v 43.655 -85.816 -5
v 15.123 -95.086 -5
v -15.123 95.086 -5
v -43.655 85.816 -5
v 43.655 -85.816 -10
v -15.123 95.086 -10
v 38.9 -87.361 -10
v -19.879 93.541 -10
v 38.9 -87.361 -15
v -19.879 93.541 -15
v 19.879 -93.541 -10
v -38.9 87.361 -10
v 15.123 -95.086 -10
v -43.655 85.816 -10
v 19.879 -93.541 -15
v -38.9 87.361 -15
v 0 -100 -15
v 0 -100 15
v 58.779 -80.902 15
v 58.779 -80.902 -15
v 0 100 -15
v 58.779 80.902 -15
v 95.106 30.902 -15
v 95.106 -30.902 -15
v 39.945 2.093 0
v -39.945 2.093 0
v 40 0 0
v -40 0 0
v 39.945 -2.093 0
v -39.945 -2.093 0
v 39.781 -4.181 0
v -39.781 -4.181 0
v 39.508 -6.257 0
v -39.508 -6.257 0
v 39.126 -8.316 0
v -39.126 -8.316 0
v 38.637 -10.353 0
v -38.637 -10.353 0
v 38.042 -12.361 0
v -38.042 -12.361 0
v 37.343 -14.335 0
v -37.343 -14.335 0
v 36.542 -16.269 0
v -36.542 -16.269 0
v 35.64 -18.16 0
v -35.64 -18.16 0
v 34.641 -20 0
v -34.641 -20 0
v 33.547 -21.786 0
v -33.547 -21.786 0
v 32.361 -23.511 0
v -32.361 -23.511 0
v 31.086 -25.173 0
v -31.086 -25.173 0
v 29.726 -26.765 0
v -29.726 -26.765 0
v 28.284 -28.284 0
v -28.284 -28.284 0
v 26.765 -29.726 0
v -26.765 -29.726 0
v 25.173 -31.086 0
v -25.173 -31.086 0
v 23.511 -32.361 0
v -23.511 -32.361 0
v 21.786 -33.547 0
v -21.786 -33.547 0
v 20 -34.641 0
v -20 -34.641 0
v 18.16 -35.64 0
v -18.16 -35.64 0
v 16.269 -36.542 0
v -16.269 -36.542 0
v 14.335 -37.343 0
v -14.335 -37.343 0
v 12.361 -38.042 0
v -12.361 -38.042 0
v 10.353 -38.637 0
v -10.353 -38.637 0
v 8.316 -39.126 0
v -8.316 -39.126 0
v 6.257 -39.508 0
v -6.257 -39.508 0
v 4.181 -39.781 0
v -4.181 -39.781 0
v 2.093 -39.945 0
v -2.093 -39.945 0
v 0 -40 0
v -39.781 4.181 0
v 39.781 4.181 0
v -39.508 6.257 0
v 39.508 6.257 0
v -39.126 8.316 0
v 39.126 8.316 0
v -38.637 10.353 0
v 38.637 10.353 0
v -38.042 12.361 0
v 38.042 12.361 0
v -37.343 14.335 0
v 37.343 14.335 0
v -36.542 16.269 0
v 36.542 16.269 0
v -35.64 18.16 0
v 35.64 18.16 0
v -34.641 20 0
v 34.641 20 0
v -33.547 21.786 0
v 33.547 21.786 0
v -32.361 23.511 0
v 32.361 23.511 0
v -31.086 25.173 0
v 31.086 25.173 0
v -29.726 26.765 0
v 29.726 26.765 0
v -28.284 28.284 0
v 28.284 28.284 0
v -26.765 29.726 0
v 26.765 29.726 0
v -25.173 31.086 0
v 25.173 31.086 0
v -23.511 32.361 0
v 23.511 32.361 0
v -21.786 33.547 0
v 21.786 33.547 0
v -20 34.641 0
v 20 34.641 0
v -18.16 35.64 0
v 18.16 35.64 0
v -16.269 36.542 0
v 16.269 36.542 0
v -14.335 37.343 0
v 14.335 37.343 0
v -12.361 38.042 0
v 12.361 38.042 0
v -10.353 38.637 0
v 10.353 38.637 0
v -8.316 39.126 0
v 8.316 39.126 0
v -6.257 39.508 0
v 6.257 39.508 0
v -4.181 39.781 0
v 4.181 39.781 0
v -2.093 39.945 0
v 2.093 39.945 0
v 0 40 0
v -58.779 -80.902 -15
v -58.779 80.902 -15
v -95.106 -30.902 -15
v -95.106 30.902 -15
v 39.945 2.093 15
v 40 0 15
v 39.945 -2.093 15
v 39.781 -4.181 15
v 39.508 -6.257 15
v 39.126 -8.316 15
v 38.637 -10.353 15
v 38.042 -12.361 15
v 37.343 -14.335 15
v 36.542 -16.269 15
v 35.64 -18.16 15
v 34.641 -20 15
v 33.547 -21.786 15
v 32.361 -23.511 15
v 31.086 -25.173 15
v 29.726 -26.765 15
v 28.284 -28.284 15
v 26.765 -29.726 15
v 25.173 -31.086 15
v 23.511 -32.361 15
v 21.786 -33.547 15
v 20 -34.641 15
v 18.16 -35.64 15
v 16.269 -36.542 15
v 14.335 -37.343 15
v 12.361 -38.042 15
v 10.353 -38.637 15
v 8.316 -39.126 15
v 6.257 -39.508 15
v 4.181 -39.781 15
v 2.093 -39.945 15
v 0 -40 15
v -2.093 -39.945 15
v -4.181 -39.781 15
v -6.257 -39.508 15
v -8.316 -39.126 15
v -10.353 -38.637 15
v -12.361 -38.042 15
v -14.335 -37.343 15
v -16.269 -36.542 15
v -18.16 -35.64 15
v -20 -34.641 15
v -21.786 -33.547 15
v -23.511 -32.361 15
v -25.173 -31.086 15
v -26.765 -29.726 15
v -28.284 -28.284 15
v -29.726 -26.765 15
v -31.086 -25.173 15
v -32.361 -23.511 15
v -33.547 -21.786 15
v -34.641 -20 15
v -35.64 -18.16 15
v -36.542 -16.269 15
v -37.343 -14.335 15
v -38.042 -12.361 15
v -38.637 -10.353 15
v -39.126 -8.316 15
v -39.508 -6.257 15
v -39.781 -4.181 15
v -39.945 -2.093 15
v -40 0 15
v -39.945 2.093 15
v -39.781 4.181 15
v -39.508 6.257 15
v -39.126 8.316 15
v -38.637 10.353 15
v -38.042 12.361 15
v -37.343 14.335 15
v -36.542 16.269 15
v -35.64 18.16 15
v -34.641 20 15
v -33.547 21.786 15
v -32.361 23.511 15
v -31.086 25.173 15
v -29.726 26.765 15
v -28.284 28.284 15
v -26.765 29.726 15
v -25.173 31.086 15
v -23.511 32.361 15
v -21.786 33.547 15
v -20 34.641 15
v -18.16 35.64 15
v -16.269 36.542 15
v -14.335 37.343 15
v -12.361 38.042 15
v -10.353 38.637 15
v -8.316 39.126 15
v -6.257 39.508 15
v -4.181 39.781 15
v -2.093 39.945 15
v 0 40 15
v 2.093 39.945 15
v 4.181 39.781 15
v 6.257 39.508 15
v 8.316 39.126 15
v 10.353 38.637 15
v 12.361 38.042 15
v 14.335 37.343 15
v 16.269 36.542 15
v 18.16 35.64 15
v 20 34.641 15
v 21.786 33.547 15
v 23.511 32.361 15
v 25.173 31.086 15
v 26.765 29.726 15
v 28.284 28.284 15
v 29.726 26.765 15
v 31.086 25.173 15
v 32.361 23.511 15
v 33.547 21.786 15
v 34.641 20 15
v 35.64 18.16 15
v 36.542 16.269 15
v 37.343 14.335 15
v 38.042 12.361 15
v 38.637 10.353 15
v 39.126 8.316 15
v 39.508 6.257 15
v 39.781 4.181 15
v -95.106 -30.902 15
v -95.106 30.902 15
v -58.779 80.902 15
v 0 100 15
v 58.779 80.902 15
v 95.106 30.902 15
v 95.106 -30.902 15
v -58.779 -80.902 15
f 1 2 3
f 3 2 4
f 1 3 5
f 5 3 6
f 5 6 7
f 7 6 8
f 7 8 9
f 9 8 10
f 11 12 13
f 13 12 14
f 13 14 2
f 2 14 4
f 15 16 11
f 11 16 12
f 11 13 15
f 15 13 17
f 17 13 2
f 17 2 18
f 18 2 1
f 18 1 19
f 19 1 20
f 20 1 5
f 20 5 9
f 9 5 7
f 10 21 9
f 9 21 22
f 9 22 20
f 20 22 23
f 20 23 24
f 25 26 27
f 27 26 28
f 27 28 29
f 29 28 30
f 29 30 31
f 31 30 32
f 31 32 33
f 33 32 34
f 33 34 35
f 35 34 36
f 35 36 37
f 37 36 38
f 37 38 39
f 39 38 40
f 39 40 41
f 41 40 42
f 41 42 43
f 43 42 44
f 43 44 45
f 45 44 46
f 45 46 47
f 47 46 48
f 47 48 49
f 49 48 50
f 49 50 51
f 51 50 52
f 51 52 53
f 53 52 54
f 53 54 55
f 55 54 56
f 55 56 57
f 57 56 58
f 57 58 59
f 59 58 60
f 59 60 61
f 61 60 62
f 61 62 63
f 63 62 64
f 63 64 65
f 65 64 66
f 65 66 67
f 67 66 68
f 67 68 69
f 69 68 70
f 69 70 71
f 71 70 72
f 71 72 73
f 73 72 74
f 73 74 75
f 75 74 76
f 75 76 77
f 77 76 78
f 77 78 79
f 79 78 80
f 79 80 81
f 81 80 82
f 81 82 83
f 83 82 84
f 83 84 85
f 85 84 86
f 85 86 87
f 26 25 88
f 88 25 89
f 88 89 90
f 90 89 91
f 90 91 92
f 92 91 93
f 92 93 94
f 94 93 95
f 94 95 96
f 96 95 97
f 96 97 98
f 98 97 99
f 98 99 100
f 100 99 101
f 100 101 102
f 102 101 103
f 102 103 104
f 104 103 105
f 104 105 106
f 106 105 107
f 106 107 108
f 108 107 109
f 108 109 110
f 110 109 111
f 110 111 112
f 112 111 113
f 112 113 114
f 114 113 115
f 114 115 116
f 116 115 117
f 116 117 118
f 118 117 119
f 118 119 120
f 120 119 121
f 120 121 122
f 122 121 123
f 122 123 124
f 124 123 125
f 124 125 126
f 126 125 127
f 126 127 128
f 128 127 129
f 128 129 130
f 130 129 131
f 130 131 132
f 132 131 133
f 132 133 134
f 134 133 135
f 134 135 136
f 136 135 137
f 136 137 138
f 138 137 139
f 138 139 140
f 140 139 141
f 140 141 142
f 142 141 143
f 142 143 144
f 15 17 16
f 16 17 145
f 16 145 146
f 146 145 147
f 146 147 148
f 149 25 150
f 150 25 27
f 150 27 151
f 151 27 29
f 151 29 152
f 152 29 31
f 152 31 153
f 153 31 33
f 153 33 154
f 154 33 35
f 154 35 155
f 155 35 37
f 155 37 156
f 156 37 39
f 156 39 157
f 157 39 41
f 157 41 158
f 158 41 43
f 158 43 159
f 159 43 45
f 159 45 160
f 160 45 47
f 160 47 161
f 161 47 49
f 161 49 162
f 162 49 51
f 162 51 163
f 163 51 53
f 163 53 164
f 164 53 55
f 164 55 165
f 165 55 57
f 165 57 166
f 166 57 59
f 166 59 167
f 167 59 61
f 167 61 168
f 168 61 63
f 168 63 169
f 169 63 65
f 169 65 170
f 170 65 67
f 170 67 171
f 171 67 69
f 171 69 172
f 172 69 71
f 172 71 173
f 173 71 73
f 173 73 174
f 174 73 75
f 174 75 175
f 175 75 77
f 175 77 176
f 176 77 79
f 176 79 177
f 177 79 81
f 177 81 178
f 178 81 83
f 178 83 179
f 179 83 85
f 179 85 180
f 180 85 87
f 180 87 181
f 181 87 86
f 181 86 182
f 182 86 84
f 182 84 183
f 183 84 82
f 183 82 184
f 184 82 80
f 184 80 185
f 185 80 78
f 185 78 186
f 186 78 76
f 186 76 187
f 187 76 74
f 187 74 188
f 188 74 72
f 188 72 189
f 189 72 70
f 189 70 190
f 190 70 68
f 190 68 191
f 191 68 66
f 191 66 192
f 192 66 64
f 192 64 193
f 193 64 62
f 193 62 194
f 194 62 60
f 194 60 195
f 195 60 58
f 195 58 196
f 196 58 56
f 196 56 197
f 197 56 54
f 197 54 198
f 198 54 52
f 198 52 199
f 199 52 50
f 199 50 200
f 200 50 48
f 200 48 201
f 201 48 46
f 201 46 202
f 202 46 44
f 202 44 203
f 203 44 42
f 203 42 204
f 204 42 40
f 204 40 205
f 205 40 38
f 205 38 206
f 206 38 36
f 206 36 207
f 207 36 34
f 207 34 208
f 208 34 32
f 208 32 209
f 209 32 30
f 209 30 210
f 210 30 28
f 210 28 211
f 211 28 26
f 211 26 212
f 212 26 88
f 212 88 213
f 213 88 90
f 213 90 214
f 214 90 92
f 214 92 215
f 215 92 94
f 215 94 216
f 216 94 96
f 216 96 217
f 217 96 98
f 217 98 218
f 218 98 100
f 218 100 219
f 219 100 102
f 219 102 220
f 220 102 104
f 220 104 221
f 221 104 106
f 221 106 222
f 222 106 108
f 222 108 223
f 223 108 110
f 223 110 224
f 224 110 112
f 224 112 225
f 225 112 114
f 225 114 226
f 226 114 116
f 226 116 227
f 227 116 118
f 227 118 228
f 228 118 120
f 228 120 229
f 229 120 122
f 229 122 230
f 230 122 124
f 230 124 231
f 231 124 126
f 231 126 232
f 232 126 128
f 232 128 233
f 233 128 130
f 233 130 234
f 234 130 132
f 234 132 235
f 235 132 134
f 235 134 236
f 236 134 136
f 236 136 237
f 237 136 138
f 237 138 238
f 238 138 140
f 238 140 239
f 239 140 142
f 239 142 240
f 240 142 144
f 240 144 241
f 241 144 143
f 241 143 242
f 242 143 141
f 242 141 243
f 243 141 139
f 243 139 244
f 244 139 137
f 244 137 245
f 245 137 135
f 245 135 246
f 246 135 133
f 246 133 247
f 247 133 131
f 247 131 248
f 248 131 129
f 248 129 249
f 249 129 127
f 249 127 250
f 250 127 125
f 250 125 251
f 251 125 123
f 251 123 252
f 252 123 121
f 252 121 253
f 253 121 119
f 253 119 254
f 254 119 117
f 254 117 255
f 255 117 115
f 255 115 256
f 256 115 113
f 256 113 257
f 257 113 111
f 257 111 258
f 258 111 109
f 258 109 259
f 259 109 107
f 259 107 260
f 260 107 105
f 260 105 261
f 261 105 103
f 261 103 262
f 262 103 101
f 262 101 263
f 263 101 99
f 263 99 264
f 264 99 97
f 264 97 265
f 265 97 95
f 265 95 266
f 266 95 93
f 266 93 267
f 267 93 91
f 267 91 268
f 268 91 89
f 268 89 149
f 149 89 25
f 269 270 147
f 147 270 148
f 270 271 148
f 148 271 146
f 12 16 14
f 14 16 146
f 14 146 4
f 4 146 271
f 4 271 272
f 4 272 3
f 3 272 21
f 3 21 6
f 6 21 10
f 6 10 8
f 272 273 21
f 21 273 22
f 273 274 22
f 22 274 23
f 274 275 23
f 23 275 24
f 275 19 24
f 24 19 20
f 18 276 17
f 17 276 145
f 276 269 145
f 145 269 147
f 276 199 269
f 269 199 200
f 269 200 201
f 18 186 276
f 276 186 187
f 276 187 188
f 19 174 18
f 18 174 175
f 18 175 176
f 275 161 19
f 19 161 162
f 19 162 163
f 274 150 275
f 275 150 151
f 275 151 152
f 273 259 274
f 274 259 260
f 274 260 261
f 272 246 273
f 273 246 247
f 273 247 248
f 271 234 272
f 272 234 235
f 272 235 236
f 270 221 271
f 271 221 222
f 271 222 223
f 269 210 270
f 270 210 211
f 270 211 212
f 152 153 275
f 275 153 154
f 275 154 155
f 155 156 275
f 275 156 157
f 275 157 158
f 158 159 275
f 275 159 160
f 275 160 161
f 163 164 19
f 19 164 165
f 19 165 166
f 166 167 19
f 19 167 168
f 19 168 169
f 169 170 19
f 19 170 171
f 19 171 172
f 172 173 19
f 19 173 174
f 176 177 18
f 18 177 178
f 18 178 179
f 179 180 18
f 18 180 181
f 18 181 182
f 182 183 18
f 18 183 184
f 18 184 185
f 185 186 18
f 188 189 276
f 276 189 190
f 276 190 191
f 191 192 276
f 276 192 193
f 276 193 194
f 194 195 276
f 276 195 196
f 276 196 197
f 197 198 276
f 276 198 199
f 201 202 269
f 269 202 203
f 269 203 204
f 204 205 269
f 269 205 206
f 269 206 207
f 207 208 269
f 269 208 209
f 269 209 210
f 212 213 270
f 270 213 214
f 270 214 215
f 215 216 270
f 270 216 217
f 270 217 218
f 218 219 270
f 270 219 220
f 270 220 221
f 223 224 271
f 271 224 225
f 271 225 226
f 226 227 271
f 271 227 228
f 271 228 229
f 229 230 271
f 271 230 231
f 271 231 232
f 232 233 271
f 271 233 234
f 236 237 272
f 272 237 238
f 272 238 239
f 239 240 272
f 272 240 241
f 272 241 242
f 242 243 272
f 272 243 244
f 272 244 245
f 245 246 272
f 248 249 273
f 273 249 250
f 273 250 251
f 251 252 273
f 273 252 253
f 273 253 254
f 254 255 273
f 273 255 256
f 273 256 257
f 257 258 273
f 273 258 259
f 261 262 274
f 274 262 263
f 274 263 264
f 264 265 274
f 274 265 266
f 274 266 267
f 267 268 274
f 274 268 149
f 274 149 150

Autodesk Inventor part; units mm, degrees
ref_plane "YZ Plane" through (0, 0, 0) normal (1, 0, 0) x (0, 1, 0)
ref_plane "XZ Plane" through (0, 0, 0) normal (0, 1, 0) x (-1, 0, 0)
ref_plane "XY Plane" through (0, 0, 0) normal (0, 0, 1) x (1, 0, 0)
sketch "Skizze1" plane through (0, 0, 0) normal (0, 0, 1) x (1, 0, 0)
  circle A0 centre (0, 0) radius 40
  line L0 (0, 100) -> (58.7785, 80.9017)
  line L1 (58.7785, 80.9017) -> (95.1057, 30.9017)
  line L2 (95.1057, 30.9017) -> (95.1057, -30.9017)
  line L3 (95.1057, -30.9017) -> (58.7785, -80.9017)
  line L4 (58.7785, -80.9017) -> (0, -100)
  line L5 (0, -100) -> (-58.7785, -80.9017)
  line L6 (-58.7785, -80.9017) -> (-95.1057, -30.9017)
  line L7 (-95.1057, -30.9017) -> (-95.1057, 30.9017)
  line L8 (-95.1057, 30.9017) -> (-58.7785, 80.9017)
  line L9 (-58.7785, 80.9017) -> (0, 100)
  dimension "d0" = 80
  dimension "d1" = 100
extrude "Extrusion1" add sketch "Skizze1" along normal blind 15
sketch "Skizze3" plane through (0, 0, 0) normal (0, 0, -1) x (-1, 0, 0)
  line L0 (-95.1057, -30.9017) -> (-95.1057, 30.9017) projected
  line L1 (-58.7785, -80.9017) -> (-95.1057, -30.9017) projected
  line L2 (0, -100) -> (-58.7785, -80.9017) projected
  line L3 (58.7785, -80.9017) -> (0, -100) projected
  line L4 (95.1057, -30.9017) -> (58.7785, -80.9017) projected
  line L5 (95.1057, 30.9017) -> (95.1057, -30.9017) projected
  line L6 (58.7785, 80.9017) -> (95.1057, 30.9017) projected
  line L7 (0, 100) -> (58.7785, 80.9017) projected
  line L8 (-58.7785, 80.9017) -> (0, 100) projected
  line L9 (-95.1057, 30.9017) -> (-58.7785, 80.9017) projected
  circle A0 centre (0, 0) radius 40 projected
extrude "Extrusion2" add sketch "Skizze3" along normal blind 15 contours L0 L9 L8 L7 L6 L5 L4 L3 L2 L1 | A0
sketch "Skizze4" plane through (-58.7785, 80.9017, 15) normal (-0.309, 0.9511, 0) x (0.9511, 0.309, 0)
  line L0 (61.8034, 30) -> (0, 30) projected
  line L1 (40.9017, 30) -> (40.9017, 25)
  line L2 (40.9017, 25) -> (45.9017, 25)
  line L3 (45.9017, 25) -> (45.9017, 20)
  line L4 (45.9017, 20) -> (15.9017, 20)
  line L5 (15.9017, 20) -> (15.9017, 25)
  line L6 (15.9017, 25) -> (20.9017, 25)
  line L7 (20.9017, 25) -> (20.9017, 30)
  point P0 (30.9017, 15)
  dimension "d6" = 20
  dimension "d7" = 10
  dimension "d8" = 30
  dimension "d9" = 15
  dimension "d10" = 5
  dimension "d11" = 5
extrude "Extrusion3" cut sketch "Skizze4" against normal through all
equation "\"d7\" = 0.5 * d6"
equation "\"d9\" = 0.5 * d8"
properties part number "Unterteil"
